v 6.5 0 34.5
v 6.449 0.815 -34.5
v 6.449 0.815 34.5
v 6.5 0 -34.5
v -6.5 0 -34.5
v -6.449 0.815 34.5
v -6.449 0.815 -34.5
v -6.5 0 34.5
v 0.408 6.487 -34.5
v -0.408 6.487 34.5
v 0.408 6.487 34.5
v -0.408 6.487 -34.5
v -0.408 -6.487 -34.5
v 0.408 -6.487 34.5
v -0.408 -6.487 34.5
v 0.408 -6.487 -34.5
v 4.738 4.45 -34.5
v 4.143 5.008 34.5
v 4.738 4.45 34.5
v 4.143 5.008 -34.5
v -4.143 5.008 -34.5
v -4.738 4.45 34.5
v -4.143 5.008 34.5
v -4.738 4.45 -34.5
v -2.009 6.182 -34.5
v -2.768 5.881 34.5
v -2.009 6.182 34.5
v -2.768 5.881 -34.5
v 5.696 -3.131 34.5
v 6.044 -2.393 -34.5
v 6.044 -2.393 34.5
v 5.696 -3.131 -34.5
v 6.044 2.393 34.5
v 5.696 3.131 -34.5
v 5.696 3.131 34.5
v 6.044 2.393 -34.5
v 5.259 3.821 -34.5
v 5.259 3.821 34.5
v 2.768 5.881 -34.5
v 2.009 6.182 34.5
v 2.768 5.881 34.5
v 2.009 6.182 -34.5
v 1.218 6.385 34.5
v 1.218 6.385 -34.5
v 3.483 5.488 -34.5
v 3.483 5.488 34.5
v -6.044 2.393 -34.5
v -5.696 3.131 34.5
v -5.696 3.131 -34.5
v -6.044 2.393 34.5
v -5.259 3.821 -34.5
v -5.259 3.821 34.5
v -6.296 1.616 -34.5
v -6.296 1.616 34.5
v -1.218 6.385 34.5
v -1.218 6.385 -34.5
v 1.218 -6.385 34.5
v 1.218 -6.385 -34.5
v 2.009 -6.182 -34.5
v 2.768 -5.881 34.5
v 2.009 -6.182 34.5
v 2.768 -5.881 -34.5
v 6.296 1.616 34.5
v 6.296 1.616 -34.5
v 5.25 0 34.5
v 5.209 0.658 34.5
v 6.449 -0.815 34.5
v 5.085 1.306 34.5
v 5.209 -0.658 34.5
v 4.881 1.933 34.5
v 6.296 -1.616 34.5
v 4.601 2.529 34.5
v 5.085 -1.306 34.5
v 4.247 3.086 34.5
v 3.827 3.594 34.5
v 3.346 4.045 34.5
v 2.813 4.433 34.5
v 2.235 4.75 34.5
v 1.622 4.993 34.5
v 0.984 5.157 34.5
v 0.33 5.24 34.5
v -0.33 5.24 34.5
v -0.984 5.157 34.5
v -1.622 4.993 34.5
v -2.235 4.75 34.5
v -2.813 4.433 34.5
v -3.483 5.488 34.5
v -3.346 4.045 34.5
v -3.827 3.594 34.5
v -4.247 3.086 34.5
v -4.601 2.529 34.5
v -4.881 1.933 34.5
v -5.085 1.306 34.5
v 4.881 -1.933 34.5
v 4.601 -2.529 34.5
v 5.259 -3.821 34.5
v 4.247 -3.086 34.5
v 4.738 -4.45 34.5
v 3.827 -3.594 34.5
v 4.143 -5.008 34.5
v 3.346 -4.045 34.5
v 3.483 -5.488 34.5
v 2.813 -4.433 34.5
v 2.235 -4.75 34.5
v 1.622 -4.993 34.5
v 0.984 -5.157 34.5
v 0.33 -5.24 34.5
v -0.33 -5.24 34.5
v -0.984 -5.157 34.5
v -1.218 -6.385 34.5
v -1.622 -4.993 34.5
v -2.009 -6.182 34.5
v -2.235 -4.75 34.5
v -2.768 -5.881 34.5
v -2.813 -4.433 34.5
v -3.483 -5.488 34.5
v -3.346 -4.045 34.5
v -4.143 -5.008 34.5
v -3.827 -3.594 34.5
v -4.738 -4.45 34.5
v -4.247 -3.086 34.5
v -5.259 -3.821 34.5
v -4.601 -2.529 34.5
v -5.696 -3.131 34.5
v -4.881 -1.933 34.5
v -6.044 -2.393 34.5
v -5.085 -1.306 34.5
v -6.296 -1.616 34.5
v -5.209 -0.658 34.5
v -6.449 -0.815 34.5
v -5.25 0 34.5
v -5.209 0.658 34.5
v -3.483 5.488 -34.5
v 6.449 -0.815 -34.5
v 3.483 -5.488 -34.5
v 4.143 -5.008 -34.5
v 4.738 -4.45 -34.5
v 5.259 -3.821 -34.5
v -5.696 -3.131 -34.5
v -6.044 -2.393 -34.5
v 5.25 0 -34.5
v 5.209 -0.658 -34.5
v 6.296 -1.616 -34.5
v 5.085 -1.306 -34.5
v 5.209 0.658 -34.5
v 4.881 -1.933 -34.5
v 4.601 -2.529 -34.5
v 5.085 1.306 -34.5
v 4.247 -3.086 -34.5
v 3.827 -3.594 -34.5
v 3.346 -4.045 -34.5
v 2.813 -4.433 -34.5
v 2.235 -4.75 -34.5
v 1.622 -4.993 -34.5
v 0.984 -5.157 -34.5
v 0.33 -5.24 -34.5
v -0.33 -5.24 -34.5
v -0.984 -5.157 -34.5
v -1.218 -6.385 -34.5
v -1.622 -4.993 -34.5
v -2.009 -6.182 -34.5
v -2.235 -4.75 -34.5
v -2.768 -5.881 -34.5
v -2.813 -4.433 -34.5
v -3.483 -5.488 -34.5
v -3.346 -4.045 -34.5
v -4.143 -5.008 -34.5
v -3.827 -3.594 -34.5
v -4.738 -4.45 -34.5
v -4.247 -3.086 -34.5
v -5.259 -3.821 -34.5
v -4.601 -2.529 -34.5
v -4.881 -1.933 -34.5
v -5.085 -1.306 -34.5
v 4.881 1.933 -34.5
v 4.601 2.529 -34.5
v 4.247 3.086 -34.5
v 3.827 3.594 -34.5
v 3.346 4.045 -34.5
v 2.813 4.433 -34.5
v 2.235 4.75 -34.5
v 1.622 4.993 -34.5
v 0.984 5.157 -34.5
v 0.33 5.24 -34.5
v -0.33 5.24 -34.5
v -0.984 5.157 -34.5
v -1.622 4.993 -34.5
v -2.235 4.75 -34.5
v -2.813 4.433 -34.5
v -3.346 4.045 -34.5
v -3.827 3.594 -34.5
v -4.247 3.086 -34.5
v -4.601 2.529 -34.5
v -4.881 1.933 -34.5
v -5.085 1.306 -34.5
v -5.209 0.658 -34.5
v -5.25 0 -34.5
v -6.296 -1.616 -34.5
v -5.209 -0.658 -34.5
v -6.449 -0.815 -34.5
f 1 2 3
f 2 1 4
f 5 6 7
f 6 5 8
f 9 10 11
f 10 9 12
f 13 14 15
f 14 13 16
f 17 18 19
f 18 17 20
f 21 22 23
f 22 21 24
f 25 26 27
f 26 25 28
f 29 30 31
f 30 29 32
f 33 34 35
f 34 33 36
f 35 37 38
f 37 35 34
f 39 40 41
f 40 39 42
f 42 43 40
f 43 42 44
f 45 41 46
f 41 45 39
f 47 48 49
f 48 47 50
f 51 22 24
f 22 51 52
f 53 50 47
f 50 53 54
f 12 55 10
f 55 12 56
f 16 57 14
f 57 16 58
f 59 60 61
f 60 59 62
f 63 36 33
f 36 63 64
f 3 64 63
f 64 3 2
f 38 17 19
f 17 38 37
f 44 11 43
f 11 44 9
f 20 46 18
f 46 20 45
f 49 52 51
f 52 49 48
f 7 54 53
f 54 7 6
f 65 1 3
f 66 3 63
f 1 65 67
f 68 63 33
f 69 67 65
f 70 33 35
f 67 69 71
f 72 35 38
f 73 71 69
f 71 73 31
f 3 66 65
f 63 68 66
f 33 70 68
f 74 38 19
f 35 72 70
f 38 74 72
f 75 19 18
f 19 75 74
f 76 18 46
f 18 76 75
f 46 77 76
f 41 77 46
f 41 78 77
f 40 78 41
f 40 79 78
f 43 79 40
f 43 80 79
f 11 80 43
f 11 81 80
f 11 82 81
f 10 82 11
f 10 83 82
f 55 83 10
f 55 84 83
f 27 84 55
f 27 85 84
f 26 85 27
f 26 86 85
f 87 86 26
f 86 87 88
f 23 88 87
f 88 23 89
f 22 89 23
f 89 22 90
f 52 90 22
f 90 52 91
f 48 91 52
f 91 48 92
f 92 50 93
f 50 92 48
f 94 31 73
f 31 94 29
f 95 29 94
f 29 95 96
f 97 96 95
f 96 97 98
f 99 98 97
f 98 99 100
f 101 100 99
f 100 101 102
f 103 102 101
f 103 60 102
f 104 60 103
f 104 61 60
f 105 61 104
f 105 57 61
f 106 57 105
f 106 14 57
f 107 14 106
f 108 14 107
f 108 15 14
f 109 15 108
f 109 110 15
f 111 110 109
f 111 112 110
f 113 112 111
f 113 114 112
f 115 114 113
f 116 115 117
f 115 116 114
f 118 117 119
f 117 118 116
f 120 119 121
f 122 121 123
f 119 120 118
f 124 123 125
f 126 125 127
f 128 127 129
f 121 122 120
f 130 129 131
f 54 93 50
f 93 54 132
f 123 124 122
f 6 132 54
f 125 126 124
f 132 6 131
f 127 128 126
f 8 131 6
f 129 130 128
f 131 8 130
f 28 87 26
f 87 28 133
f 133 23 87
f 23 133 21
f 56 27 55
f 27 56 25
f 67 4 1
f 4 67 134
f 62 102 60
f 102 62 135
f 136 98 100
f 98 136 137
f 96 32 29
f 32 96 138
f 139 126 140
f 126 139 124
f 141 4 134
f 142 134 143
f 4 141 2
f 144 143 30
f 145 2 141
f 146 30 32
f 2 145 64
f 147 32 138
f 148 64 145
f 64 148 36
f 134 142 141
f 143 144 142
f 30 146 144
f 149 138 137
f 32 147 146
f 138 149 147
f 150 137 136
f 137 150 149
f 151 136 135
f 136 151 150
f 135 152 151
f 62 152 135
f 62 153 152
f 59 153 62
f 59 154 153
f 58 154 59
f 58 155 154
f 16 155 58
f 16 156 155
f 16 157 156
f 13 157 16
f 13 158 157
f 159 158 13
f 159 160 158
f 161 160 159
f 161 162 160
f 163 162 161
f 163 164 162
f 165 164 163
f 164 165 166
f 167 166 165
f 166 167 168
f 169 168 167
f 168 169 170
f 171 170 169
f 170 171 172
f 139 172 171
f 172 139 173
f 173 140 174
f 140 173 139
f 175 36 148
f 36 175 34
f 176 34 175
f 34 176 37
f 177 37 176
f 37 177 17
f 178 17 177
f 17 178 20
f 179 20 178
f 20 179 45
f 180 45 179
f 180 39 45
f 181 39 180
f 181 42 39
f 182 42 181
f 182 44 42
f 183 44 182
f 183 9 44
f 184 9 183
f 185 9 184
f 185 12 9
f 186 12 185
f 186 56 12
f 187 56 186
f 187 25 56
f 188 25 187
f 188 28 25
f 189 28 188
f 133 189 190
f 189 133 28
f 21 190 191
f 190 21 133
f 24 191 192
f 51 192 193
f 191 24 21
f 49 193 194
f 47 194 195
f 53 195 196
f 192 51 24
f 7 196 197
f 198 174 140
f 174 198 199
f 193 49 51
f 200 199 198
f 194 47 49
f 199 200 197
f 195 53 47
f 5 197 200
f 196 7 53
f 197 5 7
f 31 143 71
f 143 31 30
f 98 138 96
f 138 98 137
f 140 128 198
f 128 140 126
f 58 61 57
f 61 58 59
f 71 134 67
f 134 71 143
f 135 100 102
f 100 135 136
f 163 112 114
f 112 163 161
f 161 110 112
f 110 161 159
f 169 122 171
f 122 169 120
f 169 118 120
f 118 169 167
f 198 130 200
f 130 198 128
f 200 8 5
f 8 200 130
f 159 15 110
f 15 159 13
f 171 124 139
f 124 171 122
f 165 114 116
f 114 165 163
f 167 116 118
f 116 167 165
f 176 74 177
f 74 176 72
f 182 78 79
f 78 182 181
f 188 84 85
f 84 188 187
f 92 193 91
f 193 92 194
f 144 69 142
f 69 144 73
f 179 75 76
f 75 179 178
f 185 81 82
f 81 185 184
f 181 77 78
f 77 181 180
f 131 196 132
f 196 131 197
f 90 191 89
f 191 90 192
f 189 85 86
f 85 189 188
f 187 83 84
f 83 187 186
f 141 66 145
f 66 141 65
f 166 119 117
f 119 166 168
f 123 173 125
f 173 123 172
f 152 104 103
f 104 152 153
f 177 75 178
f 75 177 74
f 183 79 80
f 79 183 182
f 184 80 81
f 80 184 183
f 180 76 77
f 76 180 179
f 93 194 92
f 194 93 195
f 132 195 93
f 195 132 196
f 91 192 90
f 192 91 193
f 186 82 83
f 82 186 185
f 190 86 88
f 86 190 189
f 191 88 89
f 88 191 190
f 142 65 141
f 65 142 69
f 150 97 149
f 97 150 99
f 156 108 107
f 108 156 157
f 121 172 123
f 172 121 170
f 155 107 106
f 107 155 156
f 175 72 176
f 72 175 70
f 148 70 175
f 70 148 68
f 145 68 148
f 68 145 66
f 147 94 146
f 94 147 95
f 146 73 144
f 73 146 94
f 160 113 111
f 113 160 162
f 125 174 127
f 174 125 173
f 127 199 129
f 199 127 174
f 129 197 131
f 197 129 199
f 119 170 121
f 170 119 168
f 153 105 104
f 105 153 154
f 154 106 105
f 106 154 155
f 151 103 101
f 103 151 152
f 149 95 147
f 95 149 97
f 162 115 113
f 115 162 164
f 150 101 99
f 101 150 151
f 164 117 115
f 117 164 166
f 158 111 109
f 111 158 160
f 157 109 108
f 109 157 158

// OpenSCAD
$fn = 50;


difference() {
	union() {
		translate(v = [0, 0, -34.5000000000]) {
			cylinder(h = 69, r = 6.5000000000);
		}
	}
	union() {
		translate(v = [0, 0, -100.0000000000]) {
			cylinder(h = 200, r = 5.2500000000);
		}
	}
}
